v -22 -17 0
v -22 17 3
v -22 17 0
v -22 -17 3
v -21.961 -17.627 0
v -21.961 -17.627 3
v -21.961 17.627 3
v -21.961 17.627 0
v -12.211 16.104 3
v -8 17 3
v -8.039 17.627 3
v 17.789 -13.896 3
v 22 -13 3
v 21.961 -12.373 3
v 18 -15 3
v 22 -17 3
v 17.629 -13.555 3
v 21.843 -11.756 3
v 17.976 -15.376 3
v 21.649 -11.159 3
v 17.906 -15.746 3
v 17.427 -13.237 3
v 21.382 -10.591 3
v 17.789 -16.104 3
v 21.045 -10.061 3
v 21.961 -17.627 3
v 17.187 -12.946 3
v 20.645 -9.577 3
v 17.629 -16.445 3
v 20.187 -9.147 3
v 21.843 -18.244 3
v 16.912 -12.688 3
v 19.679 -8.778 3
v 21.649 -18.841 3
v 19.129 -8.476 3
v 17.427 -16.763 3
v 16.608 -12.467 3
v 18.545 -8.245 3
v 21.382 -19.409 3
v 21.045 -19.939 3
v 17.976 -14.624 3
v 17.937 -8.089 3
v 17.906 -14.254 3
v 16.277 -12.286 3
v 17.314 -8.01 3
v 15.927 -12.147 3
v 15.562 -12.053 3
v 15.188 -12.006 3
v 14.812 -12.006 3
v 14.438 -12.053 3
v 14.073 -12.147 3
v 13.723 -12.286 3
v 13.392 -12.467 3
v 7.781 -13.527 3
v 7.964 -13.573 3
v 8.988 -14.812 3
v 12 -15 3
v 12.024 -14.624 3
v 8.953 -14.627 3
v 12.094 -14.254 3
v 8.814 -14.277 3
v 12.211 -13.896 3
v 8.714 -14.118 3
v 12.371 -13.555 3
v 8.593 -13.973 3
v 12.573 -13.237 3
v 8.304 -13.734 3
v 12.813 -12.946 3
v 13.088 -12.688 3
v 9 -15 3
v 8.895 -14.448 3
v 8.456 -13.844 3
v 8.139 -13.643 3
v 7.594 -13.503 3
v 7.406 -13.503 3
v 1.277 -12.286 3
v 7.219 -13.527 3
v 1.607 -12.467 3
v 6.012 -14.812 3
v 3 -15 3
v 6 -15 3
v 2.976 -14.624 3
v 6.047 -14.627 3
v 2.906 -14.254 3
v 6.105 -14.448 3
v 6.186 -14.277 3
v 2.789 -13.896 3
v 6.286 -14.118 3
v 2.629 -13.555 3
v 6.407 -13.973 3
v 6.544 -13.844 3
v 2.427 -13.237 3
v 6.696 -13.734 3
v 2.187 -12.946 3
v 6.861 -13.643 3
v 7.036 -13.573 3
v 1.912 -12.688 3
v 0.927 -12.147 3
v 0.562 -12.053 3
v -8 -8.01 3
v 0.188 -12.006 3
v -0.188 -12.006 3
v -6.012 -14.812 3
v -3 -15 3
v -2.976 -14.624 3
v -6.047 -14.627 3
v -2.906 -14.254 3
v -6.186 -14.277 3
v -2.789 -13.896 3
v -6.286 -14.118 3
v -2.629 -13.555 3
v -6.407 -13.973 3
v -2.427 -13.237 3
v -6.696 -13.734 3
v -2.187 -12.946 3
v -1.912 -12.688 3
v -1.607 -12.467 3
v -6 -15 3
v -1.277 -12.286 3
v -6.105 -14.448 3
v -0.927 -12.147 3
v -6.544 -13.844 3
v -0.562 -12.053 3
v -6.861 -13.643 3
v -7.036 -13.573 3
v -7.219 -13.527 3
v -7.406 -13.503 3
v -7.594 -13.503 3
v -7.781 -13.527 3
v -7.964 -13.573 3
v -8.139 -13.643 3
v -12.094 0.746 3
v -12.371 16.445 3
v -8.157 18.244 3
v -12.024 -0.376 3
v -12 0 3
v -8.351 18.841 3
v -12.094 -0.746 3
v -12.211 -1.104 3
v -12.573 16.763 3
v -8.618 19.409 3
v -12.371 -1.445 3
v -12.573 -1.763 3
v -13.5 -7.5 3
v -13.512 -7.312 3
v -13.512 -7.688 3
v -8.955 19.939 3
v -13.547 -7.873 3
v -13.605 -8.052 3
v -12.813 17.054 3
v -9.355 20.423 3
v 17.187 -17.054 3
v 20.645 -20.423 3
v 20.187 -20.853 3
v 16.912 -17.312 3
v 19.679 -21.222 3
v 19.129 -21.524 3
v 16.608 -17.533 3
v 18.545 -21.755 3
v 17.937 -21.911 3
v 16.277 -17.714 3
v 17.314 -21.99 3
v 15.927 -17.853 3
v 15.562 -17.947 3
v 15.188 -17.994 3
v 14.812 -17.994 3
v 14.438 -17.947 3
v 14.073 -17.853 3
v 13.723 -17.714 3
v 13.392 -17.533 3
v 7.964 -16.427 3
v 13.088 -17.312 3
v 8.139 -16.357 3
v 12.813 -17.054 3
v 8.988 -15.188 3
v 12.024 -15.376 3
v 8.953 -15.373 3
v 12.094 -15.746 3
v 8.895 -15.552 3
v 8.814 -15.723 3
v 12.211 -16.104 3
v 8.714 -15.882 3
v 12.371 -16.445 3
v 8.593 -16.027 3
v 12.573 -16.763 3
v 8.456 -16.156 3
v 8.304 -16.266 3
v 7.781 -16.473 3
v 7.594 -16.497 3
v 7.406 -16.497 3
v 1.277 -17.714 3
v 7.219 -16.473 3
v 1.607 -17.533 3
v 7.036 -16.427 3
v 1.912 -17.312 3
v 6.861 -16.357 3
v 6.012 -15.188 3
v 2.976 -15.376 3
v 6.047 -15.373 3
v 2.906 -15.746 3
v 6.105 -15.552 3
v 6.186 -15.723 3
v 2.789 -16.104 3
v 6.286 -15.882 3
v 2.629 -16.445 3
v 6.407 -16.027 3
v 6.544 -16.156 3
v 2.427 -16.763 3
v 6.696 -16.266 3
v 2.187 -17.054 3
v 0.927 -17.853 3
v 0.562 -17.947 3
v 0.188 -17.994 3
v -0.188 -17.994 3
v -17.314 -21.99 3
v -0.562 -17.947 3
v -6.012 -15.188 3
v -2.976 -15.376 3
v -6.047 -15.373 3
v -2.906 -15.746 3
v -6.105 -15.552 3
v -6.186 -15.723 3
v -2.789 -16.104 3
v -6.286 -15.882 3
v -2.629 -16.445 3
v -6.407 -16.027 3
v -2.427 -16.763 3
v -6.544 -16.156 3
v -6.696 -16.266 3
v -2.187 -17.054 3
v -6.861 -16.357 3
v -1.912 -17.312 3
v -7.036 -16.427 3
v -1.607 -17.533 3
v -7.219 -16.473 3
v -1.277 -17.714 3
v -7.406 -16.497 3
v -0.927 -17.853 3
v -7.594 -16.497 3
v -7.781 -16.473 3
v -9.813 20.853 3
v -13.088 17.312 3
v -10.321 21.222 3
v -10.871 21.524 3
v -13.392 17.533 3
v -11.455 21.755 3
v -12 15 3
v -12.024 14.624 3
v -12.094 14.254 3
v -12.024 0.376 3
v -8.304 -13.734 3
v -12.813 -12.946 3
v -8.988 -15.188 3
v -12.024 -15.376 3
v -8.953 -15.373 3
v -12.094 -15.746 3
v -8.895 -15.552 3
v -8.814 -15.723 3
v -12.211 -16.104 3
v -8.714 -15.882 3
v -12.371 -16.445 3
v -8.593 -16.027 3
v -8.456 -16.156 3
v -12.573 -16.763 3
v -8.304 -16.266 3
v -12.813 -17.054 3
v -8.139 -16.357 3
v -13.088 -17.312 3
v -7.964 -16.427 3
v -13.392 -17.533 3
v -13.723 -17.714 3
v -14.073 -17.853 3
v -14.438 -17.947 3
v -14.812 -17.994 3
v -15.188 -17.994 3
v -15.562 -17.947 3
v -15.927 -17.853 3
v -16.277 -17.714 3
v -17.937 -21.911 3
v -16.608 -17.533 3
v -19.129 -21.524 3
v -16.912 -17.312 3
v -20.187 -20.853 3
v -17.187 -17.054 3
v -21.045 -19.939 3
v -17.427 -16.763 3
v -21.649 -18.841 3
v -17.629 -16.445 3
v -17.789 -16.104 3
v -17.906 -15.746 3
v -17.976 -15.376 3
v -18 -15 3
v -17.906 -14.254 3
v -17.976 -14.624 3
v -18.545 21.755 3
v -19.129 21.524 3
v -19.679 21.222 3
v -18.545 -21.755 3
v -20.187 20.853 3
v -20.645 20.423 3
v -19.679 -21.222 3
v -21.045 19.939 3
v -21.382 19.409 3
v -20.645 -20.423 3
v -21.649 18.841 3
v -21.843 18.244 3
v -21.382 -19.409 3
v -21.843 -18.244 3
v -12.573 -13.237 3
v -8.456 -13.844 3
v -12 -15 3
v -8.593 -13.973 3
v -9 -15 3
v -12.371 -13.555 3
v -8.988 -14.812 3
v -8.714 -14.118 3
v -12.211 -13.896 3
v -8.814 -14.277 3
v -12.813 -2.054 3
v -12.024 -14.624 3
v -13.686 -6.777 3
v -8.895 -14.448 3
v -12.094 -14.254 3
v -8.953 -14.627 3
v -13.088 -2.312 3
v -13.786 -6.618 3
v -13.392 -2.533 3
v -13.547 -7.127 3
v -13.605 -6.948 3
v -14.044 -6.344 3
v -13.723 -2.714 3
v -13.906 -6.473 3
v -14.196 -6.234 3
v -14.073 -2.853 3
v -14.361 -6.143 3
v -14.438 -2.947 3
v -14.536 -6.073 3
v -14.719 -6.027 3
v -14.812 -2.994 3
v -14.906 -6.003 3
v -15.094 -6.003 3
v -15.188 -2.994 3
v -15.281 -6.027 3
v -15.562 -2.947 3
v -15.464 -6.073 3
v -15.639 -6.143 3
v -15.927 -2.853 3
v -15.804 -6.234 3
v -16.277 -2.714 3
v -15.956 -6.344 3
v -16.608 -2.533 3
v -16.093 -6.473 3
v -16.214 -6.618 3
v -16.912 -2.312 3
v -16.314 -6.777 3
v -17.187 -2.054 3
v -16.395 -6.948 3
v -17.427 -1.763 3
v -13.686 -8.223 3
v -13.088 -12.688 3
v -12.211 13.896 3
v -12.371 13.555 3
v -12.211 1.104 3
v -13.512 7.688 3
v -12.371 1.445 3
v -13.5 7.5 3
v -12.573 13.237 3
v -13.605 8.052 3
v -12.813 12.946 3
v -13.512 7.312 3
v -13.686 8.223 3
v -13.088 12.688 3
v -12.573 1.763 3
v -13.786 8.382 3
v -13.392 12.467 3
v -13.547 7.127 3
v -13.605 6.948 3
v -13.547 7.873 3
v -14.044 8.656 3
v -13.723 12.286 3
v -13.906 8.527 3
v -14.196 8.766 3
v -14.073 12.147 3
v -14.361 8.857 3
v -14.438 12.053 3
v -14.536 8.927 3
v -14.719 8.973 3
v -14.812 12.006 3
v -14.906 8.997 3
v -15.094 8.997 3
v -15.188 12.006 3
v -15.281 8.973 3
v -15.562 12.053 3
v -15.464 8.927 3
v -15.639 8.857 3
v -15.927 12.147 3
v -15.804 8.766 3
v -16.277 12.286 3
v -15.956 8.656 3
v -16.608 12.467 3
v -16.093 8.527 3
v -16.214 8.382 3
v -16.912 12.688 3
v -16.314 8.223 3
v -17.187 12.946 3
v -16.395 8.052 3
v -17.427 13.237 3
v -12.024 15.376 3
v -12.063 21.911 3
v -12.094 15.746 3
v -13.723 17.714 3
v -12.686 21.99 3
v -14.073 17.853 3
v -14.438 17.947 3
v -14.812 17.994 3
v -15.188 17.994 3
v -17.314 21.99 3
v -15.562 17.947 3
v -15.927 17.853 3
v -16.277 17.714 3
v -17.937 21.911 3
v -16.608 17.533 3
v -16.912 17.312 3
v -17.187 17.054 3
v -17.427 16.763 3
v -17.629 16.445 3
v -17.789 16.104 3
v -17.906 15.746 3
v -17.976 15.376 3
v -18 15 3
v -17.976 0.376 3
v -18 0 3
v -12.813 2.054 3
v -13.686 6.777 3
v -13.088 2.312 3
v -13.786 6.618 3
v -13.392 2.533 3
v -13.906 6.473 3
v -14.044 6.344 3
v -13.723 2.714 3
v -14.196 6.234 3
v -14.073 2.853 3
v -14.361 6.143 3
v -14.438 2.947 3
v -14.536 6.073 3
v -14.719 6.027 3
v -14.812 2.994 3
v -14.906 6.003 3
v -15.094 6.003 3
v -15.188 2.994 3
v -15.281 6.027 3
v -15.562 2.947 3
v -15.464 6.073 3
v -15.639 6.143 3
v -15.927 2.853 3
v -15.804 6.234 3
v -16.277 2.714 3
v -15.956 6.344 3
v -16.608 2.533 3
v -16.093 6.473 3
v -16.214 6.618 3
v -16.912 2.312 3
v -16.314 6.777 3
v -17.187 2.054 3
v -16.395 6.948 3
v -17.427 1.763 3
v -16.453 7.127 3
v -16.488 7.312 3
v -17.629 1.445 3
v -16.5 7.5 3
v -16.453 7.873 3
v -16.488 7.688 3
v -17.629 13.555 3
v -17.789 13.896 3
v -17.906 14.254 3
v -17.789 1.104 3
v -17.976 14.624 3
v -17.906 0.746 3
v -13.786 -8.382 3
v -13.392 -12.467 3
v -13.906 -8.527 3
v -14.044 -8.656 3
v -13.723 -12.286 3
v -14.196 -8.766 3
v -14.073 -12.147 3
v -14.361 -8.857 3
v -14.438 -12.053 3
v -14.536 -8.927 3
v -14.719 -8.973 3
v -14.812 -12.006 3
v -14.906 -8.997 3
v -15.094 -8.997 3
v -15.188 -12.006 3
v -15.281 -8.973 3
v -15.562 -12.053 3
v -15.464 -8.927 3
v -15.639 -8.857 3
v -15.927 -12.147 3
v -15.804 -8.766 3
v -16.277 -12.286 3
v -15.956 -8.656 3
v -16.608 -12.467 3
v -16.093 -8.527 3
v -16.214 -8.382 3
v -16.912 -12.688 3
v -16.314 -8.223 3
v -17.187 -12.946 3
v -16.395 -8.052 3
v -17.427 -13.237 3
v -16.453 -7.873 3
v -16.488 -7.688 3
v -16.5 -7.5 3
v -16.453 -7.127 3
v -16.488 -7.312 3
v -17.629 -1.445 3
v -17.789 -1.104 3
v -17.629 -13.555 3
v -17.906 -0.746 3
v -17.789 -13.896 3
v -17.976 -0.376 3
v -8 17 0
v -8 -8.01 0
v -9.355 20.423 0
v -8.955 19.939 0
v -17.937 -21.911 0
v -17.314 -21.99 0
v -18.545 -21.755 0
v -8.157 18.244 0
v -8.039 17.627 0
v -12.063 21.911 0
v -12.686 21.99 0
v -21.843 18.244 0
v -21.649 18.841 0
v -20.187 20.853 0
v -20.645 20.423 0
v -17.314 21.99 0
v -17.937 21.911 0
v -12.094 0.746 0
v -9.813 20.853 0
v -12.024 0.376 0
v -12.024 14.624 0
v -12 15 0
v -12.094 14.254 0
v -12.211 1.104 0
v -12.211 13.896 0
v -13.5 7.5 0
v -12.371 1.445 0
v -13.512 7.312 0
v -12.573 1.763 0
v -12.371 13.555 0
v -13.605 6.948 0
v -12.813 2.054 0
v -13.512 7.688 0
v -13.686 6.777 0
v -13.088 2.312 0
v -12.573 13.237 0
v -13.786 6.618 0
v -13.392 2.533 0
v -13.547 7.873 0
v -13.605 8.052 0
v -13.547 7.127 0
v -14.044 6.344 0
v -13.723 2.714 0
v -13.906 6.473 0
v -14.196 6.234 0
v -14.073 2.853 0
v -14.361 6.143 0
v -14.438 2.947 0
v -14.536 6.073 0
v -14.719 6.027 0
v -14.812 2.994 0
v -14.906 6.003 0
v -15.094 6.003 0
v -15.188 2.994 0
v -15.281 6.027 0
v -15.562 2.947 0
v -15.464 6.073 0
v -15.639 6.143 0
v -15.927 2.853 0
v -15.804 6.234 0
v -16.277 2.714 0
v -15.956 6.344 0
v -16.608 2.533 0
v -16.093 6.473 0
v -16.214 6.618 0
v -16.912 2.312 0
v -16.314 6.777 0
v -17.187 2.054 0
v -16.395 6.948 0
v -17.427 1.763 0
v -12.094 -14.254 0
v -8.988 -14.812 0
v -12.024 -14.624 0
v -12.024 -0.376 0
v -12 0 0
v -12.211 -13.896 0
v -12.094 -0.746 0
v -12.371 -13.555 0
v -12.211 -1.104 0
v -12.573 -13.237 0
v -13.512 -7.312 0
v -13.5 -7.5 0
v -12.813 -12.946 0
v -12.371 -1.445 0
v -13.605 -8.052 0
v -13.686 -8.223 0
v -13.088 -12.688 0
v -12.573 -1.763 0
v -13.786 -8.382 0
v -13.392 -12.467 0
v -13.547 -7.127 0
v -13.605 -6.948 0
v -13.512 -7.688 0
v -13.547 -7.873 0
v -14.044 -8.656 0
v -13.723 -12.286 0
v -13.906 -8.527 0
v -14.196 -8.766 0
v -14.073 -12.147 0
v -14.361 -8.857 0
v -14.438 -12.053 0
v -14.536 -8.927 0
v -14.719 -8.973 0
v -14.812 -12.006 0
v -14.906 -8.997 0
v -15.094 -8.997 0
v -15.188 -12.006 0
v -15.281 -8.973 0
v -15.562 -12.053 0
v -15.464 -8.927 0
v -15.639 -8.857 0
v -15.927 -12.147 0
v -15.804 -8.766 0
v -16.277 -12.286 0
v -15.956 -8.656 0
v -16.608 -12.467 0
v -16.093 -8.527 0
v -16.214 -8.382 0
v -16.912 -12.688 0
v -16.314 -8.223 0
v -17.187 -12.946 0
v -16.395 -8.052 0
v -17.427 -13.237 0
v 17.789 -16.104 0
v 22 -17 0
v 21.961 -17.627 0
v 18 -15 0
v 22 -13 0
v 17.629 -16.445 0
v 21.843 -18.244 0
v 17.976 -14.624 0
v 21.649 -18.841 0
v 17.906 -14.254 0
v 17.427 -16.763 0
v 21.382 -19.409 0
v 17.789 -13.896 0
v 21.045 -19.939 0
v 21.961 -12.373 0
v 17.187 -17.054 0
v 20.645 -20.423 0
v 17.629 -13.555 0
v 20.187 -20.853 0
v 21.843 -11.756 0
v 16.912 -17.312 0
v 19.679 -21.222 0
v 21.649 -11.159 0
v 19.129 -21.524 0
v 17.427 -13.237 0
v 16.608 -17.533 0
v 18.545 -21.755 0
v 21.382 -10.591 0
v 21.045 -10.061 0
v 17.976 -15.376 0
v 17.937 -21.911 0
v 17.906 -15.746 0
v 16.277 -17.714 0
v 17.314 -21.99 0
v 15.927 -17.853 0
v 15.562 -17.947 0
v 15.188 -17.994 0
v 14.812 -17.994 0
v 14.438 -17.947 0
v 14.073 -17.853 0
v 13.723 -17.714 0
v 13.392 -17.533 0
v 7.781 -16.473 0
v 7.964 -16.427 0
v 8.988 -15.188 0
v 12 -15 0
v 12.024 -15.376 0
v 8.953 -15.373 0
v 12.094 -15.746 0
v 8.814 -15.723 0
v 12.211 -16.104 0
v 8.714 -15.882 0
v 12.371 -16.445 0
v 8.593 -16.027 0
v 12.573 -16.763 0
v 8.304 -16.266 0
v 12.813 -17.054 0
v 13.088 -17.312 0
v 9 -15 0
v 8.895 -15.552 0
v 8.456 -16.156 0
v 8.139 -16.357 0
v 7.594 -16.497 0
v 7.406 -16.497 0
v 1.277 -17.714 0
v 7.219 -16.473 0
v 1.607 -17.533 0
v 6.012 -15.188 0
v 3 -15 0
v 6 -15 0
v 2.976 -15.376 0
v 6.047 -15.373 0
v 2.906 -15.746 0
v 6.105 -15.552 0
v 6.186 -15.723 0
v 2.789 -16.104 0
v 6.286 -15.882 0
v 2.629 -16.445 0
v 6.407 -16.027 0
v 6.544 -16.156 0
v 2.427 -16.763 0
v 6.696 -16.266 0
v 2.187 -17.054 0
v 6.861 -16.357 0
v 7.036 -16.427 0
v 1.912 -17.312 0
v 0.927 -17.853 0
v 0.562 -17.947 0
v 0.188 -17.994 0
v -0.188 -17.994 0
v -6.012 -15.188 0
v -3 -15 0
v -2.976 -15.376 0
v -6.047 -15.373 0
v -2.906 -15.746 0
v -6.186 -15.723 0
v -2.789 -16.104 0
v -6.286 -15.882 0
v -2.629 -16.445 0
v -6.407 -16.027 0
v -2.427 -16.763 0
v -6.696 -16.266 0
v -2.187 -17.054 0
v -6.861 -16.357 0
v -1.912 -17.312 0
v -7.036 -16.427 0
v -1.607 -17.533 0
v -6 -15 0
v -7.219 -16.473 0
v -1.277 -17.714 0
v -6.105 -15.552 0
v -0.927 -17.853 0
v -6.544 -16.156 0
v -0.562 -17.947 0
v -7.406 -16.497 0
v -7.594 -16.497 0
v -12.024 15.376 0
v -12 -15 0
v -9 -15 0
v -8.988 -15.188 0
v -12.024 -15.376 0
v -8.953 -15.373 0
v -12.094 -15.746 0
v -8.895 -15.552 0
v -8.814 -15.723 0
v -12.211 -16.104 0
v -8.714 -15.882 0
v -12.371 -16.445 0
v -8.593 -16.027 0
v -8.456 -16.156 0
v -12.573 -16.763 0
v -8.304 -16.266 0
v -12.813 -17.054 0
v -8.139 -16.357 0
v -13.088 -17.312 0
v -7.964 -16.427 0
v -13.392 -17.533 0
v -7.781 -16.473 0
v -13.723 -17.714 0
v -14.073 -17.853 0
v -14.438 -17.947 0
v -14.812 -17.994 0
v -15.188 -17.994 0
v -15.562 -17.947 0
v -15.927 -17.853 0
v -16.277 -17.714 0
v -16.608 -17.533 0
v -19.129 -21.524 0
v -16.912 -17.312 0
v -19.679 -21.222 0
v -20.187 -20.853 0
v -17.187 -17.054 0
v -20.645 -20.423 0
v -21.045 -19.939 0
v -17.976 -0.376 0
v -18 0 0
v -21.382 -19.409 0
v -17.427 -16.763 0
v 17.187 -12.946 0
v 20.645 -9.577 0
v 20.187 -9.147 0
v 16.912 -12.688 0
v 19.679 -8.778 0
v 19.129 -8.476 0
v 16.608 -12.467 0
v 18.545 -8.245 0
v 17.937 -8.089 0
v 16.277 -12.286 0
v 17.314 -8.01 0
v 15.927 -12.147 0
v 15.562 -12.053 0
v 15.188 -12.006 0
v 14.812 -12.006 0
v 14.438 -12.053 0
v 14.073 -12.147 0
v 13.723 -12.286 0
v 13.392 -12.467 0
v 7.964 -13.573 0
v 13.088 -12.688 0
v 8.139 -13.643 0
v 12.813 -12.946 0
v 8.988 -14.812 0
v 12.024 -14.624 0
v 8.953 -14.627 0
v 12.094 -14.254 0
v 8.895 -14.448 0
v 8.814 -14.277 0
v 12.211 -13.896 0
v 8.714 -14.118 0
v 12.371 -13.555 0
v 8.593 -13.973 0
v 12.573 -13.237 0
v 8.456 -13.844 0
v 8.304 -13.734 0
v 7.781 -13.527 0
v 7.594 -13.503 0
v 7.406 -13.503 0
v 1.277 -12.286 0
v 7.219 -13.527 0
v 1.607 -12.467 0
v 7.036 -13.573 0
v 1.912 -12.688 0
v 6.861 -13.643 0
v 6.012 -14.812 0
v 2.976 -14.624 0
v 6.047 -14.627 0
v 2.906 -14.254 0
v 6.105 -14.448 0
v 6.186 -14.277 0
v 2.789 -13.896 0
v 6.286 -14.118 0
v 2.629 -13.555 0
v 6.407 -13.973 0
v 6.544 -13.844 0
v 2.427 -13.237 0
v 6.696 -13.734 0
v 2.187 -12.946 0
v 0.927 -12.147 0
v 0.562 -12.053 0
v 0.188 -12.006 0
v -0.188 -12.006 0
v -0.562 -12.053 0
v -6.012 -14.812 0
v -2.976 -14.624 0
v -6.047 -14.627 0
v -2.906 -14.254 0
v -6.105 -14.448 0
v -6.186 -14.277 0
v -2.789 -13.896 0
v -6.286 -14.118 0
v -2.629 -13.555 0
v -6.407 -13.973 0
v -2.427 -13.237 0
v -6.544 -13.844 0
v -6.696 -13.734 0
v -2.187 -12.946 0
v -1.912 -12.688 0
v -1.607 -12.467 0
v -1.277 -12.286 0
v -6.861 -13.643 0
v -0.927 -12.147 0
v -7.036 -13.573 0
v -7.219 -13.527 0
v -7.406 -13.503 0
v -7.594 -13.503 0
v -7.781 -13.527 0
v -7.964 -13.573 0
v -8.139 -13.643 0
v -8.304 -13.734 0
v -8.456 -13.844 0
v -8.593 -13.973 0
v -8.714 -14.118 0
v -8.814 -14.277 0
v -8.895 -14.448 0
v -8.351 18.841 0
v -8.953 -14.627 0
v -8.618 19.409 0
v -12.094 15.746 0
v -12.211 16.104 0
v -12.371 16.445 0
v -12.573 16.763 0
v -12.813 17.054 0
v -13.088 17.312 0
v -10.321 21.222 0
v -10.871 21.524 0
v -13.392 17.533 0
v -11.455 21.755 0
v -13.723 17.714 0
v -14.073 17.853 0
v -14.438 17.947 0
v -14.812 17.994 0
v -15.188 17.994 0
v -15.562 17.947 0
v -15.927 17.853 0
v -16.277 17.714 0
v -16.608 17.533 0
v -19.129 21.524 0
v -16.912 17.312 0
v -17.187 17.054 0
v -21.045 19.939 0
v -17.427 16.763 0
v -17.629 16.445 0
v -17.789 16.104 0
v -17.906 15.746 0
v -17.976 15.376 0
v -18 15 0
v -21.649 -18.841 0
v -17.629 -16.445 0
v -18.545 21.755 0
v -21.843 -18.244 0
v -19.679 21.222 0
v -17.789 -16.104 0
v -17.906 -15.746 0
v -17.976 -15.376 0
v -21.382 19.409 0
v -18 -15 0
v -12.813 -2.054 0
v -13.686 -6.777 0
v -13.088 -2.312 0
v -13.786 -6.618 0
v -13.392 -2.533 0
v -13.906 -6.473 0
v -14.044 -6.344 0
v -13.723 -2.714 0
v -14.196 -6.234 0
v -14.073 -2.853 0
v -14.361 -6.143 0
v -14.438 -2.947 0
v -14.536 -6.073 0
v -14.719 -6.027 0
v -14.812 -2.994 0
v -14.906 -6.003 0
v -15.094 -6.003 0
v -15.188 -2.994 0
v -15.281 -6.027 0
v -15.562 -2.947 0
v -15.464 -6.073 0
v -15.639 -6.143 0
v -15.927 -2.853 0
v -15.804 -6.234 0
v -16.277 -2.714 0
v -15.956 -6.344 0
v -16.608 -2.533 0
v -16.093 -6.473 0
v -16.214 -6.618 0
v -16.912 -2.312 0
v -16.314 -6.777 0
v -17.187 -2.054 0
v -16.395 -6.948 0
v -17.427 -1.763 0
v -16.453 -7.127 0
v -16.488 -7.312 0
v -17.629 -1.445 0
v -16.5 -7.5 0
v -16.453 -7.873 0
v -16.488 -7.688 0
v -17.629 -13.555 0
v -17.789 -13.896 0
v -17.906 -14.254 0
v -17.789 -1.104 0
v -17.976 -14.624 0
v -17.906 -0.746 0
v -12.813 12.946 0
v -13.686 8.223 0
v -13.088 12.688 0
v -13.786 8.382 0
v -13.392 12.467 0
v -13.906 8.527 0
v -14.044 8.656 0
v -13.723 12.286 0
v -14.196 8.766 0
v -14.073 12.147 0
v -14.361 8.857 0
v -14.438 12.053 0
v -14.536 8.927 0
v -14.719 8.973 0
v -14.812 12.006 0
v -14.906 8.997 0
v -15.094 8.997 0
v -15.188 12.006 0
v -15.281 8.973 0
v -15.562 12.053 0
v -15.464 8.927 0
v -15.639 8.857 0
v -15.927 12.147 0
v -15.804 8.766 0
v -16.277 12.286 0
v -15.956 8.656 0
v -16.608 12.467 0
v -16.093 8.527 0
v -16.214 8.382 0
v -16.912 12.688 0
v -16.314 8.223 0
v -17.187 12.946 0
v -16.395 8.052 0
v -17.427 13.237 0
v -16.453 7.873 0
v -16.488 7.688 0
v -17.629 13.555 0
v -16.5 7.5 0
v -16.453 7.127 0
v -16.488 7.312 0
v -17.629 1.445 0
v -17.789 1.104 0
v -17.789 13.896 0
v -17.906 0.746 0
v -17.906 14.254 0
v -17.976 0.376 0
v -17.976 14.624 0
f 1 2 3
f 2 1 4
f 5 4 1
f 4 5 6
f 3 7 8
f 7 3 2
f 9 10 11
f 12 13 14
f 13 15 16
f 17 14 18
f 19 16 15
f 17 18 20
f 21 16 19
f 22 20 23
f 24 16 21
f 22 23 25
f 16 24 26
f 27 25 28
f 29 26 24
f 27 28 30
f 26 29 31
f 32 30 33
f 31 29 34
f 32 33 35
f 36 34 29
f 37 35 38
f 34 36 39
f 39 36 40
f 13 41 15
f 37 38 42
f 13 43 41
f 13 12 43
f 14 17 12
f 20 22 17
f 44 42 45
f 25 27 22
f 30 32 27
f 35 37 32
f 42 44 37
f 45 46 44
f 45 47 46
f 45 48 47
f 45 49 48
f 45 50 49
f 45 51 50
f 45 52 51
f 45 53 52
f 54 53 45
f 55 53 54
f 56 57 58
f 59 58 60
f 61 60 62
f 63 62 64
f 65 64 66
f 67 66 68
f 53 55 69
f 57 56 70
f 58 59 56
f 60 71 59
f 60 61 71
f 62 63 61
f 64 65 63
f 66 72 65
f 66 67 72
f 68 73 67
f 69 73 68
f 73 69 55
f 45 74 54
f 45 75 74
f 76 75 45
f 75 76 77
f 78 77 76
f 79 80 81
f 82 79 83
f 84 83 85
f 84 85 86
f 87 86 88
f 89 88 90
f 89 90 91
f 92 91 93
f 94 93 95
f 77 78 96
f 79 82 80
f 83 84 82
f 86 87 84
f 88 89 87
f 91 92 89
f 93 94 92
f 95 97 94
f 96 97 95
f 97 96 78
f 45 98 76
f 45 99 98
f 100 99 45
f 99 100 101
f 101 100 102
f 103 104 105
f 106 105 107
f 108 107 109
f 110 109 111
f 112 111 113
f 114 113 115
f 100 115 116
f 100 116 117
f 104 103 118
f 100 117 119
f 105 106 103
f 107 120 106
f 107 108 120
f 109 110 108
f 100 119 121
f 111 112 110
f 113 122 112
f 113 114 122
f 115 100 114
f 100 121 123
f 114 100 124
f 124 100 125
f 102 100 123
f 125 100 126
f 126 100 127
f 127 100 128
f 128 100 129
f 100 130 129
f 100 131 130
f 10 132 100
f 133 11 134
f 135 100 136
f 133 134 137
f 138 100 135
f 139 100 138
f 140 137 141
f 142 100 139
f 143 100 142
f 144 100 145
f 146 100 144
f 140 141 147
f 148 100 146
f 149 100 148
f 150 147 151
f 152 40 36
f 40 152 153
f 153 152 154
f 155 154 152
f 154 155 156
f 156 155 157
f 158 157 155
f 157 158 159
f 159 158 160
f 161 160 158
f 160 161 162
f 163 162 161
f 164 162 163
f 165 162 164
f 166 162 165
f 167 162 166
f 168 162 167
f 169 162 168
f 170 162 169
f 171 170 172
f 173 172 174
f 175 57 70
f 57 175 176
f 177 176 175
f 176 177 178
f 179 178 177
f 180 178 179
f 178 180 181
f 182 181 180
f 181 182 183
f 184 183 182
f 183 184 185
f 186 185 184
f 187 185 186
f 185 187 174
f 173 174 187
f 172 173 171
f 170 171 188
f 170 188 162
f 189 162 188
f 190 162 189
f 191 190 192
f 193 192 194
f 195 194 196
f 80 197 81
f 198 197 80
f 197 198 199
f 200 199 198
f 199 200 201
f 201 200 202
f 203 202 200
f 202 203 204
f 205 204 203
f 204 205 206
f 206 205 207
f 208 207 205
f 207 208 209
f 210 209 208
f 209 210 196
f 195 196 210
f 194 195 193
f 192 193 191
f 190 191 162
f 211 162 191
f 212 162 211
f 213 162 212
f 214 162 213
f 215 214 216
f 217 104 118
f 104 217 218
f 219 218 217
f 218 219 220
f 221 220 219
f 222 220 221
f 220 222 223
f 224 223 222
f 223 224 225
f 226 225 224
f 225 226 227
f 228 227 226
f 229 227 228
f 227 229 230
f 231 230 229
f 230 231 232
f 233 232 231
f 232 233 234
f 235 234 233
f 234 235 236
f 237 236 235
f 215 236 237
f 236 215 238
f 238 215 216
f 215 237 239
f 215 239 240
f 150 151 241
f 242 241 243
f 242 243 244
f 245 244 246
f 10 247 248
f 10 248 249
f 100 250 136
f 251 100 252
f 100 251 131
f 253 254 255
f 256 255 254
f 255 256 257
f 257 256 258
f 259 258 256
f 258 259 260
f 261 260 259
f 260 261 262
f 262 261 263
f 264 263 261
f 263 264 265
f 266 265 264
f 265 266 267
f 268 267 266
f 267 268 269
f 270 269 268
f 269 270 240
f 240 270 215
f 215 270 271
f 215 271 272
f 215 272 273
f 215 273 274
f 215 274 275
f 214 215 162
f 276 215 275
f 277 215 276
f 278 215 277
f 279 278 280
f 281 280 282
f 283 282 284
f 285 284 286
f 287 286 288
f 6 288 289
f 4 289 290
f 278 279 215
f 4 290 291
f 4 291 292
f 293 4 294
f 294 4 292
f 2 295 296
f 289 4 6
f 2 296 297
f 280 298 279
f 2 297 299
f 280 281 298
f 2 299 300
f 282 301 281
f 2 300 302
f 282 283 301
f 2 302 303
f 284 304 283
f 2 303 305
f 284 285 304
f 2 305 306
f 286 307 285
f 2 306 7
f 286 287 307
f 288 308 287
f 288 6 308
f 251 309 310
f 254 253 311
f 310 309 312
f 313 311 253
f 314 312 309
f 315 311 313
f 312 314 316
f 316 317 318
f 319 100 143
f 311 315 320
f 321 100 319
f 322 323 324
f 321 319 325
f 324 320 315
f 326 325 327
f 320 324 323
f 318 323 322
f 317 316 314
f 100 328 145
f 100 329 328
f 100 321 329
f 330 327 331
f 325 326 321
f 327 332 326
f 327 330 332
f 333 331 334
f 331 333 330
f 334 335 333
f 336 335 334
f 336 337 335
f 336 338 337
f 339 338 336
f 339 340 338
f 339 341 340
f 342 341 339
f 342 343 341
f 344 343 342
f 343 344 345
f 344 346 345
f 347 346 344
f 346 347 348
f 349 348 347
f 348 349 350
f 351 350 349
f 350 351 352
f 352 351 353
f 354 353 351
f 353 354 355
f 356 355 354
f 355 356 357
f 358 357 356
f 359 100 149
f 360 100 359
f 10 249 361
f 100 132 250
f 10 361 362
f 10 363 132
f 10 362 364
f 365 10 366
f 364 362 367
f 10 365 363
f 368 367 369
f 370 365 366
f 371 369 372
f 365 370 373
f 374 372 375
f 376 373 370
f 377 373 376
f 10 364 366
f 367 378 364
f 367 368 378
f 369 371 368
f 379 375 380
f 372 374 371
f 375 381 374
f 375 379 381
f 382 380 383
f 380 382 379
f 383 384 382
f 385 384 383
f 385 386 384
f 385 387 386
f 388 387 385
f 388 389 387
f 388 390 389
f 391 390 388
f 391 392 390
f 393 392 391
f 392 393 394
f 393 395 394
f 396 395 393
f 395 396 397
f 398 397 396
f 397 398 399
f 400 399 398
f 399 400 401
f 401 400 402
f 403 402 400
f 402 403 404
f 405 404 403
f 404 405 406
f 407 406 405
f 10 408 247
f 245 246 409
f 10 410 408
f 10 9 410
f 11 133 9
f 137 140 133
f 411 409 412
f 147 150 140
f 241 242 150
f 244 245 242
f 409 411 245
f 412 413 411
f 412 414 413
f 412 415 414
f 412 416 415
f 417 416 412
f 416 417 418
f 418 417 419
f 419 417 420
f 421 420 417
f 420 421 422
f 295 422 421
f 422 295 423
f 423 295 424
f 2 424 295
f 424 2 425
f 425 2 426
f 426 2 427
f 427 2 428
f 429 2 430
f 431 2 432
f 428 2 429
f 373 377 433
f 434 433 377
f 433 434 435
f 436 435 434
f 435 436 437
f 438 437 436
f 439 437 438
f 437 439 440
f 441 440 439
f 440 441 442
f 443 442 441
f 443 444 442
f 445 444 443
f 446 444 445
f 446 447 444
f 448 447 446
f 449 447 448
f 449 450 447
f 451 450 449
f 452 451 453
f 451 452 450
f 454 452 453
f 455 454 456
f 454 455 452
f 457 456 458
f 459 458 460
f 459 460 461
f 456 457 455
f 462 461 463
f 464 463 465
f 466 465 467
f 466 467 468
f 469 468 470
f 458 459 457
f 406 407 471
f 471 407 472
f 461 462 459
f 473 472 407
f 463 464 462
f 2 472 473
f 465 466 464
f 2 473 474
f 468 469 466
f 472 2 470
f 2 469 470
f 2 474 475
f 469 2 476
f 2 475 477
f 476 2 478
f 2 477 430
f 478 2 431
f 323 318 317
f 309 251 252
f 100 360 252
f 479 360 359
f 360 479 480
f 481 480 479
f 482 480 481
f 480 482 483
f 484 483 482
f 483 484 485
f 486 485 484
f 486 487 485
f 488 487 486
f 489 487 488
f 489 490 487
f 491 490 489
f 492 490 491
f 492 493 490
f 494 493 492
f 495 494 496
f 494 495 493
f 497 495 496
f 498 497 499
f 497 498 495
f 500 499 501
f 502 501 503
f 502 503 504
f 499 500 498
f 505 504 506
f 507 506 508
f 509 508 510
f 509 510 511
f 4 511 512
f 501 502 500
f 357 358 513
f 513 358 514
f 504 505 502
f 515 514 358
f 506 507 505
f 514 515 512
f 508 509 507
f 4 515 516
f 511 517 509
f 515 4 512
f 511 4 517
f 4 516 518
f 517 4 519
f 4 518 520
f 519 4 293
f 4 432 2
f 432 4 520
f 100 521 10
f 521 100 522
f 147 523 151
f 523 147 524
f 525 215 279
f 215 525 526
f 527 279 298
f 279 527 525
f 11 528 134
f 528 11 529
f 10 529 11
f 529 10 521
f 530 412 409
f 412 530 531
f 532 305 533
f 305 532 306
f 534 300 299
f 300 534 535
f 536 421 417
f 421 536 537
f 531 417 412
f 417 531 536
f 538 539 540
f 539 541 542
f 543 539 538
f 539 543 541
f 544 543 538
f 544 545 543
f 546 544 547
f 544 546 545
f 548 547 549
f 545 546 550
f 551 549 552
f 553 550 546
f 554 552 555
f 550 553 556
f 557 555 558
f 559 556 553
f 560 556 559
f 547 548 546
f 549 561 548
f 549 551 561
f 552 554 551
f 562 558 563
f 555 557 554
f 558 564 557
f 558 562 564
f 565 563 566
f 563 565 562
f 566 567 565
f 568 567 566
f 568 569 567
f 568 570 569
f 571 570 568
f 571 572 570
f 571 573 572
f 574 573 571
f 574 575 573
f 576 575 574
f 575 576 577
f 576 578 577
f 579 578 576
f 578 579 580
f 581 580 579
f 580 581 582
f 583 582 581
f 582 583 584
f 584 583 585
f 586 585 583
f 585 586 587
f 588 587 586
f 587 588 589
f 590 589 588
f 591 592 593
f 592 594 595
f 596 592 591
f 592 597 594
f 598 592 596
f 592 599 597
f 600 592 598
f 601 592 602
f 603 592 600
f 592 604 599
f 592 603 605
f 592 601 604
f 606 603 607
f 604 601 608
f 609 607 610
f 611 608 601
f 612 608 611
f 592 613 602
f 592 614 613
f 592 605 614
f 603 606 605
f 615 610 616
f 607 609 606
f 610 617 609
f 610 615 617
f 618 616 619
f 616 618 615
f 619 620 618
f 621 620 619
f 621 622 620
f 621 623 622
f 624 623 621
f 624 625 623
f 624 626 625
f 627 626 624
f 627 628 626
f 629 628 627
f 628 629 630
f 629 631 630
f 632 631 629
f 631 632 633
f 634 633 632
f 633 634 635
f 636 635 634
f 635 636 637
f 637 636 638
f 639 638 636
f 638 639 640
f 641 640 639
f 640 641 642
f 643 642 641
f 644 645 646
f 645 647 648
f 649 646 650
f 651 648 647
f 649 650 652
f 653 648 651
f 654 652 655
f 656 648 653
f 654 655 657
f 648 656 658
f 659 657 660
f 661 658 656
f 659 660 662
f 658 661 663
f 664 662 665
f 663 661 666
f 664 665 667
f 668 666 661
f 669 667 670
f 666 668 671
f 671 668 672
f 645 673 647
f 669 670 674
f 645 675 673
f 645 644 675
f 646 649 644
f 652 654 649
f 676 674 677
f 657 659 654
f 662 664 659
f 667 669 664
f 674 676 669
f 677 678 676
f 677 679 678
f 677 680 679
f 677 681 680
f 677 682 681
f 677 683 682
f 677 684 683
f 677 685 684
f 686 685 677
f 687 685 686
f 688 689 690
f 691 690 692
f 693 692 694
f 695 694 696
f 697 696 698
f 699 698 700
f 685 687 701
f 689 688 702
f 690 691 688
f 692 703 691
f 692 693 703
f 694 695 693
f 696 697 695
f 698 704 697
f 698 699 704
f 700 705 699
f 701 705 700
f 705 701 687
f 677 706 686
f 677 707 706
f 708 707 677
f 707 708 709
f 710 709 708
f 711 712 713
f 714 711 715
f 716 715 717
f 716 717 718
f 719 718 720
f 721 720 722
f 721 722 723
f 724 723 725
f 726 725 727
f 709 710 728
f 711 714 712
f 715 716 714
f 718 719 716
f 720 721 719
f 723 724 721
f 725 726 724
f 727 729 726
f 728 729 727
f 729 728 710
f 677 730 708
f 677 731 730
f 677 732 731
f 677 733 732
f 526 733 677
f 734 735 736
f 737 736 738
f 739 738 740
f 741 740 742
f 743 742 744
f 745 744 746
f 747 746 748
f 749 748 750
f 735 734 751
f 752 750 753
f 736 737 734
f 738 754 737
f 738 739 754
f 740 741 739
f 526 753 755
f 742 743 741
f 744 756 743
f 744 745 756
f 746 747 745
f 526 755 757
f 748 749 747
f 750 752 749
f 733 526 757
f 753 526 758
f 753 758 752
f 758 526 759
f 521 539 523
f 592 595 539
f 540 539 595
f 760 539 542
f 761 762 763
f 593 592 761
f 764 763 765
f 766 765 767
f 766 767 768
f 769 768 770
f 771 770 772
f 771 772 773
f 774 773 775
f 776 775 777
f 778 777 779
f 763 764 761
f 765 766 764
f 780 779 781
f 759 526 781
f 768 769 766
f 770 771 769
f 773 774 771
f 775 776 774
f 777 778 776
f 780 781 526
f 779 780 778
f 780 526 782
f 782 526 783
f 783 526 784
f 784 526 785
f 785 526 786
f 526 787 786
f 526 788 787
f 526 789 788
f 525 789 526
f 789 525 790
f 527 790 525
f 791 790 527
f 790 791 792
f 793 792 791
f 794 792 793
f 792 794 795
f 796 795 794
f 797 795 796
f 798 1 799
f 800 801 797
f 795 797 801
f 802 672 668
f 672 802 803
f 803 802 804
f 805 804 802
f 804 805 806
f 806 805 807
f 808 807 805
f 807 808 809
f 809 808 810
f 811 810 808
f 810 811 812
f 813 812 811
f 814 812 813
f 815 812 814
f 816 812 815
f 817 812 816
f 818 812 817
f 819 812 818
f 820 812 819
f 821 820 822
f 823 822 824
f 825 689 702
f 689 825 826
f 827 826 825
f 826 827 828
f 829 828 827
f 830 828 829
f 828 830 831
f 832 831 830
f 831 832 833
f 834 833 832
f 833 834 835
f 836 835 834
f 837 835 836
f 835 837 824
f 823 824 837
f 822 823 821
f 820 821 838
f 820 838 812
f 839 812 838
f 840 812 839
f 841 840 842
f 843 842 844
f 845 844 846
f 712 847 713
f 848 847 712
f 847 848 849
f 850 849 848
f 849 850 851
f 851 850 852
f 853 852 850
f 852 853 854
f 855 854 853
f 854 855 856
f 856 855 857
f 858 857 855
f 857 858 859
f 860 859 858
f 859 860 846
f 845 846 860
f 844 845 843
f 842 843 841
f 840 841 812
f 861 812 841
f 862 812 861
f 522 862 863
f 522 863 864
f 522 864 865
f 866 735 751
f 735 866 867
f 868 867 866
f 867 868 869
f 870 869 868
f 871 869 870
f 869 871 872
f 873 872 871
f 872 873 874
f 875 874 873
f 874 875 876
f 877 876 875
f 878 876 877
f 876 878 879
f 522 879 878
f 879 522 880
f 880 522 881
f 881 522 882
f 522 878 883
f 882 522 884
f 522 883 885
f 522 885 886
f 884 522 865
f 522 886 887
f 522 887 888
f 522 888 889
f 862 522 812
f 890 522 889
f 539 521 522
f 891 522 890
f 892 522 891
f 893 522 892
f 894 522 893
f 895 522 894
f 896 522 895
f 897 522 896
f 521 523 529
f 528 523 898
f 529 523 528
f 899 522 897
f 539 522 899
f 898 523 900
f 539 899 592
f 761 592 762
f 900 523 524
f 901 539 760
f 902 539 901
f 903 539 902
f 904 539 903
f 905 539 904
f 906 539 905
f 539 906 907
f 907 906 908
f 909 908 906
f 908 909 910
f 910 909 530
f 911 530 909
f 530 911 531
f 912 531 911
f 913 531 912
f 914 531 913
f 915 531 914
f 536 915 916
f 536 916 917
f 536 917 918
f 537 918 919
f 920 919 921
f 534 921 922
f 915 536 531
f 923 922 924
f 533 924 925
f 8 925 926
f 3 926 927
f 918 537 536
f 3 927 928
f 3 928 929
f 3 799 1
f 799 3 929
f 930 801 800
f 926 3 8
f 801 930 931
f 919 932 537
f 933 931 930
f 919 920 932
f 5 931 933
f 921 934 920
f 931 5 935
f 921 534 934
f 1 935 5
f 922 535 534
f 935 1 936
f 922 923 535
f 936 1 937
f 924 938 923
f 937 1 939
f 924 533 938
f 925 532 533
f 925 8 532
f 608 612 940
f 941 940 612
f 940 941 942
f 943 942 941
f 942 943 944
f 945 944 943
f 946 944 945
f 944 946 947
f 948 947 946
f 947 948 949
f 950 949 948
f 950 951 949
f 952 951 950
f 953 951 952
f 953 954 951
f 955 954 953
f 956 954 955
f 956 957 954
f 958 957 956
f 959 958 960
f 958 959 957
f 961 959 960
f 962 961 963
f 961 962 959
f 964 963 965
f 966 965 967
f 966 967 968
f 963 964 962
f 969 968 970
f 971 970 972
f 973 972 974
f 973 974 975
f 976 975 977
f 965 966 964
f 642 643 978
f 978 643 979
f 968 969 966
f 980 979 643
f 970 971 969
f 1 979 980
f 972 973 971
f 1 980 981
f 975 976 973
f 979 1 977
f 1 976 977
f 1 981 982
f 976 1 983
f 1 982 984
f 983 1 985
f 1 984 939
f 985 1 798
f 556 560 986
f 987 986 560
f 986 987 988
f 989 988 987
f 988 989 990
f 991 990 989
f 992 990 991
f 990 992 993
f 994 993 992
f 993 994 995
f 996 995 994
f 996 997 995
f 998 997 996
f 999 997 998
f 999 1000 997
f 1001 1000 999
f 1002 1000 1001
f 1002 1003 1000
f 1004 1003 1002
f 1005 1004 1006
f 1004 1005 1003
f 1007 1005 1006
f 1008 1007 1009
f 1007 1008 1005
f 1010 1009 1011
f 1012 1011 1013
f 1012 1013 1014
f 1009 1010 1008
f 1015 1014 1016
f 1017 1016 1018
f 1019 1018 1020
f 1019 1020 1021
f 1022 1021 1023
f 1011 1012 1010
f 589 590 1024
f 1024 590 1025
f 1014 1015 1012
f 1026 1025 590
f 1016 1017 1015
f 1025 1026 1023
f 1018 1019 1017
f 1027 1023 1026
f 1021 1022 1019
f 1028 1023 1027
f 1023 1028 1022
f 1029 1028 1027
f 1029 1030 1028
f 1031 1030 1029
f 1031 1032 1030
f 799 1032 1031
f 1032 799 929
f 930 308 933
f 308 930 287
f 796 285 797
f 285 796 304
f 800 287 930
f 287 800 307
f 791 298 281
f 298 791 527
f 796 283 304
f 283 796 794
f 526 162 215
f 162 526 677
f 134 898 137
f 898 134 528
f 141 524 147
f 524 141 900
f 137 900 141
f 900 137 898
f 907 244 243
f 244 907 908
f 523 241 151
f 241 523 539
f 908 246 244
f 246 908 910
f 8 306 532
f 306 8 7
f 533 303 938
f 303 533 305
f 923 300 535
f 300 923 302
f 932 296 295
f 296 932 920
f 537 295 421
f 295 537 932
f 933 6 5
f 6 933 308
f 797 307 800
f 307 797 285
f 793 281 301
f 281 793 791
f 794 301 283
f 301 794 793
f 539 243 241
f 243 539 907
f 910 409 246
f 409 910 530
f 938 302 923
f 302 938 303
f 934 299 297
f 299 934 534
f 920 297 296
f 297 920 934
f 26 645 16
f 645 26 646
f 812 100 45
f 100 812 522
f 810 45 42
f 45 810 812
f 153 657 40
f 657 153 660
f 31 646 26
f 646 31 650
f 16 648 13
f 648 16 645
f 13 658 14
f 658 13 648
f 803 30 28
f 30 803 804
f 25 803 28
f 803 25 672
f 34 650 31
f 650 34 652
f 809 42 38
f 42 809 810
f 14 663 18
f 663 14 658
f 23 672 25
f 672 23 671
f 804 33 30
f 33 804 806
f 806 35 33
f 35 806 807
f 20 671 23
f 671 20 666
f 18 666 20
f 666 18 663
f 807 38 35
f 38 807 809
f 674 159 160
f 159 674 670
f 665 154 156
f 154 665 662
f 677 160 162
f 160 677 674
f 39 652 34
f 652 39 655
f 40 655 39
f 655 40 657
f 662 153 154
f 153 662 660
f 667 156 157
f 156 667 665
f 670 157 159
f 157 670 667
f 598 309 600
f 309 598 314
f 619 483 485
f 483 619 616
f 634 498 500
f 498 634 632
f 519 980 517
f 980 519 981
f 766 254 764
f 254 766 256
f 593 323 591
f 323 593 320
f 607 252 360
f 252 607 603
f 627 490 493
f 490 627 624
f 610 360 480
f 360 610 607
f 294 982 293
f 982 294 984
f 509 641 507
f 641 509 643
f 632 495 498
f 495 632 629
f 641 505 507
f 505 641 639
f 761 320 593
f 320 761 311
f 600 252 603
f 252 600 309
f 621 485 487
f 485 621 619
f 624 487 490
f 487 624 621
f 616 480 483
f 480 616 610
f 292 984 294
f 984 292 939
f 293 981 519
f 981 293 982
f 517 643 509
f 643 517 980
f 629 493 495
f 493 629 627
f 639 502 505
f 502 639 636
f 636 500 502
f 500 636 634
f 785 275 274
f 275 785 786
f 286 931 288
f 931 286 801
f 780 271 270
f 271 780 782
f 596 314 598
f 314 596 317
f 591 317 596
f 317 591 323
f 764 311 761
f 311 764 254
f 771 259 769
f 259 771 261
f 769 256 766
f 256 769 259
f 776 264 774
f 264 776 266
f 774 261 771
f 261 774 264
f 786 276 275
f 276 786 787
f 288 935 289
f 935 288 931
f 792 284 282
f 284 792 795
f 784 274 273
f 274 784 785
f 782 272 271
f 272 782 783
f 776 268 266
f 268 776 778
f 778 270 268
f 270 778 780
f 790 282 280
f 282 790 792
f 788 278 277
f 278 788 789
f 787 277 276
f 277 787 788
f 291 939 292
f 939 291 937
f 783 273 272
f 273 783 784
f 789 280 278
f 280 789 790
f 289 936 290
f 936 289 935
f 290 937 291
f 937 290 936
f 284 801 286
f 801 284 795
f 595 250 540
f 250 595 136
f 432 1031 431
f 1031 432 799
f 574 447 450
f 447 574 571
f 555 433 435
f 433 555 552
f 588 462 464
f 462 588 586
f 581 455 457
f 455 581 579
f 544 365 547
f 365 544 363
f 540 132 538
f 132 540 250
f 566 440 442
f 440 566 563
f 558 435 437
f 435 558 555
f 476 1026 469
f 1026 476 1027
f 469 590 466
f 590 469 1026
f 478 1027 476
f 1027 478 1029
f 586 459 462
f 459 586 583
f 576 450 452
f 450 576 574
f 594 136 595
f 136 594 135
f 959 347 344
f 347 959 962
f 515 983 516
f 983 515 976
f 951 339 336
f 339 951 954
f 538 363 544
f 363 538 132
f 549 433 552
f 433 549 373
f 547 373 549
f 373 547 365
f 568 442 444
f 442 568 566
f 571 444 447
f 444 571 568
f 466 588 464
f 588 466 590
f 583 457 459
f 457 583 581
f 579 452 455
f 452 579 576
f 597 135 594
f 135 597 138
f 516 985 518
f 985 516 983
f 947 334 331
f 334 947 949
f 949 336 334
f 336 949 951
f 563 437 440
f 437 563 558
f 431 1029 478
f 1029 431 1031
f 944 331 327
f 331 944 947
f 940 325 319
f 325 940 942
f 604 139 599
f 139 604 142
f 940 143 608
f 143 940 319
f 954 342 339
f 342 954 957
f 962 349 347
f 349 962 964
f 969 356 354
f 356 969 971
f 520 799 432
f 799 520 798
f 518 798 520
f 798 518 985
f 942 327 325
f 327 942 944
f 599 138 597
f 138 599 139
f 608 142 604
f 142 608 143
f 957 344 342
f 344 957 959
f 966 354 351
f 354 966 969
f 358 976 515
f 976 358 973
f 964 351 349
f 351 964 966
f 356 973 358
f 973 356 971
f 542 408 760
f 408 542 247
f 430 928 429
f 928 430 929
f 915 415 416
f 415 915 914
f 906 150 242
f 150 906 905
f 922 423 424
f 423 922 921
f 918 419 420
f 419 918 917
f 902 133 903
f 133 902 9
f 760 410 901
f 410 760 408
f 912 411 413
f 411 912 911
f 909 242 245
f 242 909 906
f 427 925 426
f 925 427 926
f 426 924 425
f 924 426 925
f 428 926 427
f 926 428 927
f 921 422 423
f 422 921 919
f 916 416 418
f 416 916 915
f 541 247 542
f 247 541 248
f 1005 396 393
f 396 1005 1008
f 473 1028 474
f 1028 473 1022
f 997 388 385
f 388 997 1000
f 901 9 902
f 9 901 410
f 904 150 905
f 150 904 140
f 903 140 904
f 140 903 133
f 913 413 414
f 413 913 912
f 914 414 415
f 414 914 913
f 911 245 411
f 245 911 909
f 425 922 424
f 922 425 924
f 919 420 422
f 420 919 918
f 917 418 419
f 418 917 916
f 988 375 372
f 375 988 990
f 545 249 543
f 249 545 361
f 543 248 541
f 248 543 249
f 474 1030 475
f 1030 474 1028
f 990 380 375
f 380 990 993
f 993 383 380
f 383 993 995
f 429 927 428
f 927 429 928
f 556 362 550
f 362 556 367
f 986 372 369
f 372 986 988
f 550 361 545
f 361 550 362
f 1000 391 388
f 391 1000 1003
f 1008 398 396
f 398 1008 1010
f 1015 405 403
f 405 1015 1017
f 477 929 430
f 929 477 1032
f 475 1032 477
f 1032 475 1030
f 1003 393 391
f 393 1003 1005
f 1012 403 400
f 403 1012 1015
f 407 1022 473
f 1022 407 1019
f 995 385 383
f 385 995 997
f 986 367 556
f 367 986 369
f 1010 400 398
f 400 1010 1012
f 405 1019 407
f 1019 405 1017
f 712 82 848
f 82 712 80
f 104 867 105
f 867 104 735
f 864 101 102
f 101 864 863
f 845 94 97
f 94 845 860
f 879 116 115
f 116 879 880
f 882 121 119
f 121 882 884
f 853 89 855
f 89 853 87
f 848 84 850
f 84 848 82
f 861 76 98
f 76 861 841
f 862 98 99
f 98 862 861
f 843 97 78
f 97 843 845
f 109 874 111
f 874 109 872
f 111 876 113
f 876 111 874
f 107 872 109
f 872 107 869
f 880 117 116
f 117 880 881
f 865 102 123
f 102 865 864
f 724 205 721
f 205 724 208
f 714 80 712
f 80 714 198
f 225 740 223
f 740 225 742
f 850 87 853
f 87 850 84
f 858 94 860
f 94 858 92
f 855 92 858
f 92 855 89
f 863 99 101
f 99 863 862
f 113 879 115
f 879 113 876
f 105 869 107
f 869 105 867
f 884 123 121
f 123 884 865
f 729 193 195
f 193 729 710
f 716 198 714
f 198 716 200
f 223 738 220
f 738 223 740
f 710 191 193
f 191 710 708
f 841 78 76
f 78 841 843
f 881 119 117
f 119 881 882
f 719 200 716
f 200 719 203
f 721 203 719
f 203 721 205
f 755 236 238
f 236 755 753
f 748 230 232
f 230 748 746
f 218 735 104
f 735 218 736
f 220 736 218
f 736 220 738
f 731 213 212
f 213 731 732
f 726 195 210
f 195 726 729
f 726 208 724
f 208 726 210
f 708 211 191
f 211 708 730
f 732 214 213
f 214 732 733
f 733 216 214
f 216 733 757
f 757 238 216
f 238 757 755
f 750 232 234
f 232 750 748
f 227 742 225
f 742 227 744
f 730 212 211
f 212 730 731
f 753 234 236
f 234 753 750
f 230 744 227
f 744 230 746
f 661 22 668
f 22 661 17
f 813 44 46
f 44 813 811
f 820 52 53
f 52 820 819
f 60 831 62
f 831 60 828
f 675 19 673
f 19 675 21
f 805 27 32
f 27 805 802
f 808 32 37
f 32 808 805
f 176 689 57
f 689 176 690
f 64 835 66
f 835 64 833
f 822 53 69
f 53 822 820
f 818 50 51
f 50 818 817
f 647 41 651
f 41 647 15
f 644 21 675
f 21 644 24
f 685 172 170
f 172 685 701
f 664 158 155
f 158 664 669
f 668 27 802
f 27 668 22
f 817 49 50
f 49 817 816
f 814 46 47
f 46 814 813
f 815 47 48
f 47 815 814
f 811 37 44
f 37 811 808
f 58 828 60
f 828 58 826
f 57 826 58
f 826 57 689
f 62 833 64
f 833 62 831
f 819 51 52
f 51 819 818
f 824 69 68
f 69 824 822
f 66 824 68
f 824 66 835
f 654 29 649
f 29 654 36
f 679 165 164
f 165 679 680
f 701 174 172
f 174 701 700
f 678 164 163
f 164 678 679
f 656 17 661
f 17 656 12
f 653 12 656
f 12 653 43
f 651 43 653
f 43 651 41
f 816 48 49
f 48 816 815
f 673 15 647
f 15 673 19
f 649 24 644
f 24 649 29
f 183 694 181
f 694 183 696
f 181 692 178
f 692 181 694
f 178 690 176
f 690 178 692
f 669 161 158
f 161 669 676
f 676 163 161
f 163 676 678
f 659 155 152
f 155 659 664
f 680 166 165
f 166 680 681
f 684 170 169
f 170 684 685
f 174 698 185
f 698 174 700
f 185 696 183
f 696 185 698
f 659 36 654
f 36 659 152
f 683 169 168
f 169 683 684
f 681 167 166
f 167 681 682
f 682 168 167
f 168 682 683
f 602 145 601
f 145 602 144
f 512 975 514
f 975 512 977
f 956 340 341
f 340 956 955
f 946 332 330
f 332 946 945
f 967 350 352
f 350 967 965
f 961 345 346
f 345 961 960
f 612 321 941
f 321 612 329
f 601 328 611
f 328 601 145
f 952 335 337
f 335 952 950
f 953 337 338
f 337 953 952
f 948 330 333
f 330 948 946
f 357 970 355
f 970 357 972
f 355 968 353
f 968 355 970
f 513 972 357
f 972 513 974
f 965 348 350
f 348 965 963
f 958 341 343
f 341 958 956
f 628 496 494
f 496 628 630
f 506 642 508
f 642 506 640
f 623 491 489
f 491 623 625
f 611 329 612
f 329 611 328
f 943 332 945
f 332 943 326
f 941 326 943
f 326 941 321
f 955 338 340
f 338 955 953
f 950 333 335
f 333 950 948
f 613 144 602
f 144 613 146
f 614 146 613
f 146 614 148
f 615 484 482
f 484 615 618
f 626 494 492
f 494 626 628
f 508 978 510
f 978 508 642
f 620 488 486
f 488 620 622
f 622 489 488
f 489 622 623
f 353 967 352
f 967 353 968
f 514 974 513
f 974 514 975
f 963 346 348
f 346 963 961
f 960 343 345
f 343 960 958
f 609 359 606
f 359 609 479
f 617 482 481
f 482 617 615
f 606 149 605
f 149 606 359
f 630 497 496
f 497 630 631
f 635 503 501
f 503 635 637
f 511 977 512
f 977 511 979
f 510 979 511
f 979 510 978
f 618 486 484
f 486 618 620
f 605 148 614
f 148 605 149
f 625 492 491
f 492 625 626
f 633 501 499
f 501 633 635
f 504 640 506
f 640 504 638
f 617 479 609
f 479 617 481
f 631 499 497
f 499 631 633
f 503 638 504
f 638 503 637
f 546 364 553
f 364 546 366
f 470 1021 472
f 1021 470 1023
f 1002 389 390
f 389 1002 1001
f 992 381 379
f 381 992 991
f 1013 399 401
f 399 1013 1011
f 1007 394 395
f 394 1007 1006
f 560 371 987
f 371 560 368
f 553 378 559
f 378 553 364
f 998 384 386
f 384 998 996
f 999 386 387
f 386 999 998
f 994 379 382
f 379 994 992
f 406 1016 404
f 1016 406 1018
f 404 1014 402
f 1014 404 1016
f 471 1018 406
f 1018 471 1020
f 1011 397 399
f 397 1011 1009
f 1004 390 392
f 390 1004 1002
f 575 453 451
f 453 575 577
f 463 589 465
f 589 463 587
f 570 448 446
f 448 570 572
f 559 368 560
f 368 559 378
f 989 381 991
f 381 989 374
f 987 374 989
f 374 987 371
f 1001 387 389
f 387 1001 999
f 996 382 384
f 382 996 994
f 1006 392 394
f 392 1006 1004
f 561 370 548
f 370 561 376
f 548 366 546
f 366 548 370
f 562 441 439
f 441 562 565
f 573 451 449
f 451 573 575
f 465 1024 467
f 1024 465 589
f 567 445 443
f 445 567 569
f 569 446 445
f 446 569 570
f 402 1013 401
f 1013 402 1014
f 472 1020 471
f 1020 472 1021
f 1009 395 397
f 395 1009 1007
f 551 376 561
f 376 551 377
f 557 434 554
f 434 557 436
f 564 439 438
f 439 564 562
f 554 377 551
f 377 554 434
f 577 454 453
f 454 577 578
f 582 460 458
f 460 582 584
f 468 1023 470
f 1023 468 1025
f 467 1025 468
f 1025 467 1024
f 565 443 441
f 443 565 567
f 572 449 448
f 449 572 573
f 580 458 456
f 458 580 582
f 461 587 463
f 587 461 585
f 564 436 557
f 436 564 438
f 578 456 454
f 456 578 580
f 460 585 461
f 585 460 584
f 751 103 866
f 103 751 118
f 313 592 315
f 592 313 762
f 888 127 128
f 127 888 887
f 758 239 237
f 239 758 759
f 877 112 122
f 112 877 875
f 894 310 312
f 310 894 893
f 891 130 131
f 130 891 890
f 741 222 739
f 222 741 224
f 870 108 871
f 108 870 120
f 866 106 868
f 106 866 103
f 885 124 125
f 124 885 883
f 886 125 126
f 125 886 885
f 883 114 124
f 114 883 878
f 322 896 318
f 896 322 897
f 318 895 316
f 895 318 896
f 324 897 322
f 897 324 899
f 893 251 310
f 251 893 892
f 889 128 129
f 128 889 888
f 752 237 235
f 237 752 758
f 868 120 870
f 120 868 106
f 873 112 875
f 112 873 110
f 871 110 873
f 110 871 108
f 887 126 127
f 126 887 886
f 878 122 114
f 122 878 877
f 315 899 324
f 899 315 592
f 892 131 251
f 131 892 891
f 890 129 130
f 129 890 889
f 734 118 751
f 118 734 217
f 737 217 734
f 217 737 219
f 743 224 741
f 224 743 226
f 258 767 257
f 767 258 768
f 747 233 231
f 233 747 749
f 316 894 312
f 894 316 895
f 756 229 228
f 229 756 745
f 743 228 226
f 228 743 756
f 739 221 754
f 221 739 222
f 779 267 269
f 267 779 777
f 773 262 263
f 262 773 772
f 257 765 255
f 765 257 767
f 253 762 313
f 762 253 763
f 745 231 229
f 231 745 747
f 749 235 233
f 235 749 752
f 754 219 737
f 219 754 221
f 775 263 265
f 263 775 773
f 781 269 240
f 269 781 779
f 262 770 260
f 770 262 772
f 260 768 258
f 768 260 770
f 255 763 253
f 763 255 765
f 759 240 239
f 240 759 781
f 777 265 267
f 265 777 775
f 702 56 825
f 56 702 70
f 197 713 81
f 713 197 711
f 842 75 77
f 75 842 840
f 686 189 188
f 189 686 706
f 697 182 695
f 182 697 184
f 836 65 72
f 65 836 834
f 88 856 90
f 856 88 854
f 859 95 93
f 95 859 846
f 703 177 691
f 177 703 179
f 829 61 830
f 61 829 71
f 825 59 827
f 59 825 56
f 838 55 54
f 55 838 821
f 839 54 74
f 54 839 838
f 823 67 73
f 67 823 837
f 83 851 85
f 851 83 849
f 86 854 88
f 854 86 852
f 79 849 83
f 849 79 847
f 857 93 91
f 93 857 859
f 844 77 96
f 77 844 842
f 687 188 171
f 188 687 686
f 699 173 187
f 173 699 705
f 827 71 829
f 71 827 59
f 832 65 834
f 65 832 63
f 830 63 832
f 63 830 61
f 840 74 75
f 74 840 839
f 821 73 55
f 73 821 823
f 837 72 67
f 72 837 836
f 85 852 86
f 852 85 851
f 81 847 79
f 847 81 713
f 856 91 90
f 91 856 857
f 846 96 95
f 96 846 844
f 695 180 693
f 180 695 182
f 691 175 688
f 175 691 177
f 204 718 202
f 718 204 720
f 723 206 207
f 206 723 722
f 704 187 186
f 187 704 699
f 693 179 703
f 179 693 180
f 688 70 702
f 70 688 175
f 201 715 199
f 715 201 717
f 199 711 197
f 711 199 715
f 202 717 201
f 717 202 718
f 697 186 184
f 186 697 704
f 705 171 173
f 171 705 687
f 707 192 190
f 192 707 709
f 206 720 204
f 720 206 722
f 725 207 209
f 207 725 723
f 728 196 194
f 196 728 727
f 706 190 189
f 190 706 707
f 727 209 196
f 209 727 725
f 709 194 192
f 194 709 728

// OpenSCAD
$fn = 50;


difference() {
	union() {
		translate(v = [-15.0000000000, 0, 0]) {
			hull() {
				translate(v = [-2.0000000000, 17.0000000000, 0]) {
					cylinder(h = 3, r = 5);
				}
				translate(v = [2.0000000000, 17.0000000000, 0]) {
					cylinder(h = 3, r = 5);
				}
				translate(v = [-2.0000000000, -17.0000000000, 0]) {
					cylinder(h = 3, r = 5);
				}
				translate(v = [2.0000000000, -17.0000000000, 0]) {
					cylinder(h = 3, r = 5);
				}
			}
		}
		translate(v = [0, -15.0000000000, 0]) {
			hull() {
				translate(v = [-17.0000000000, 2.0000000000, 0]) {
					cylinder(h = 3, r = 5);
				}
				translate(v = [17.0000000000, 2.0000000000, 0]) {
					cylinder(h = 3, r = 5);
				}
				translate(v = [-17.0000000000, -2.0000000000, 0]) {
					cylinder(h = 3, r = 5);
				}
				translate(v = [17.0000000000, -2.0000000000, 0]) {
					cylinder(h = 3, r = 5);
				}
			}
		}
	}
	union() {
		#translate(v = [-15.0000000000, -15.0000000000, 0]) {
			cylinder(h = 3, r = 3.0000000000);
		}
		#translate(v = [-15.0000000000, 0.0000000000, 0]) {
			cylinder(h = 3, r = 3.0000000000);
		}
		#translate(v = [-15.0000000000, 15.0000000000, 0]) {
			cylinder(h = 3, r = 3.0000000000);
		}
		#translate(v = [-15.0000000000, -15.0000000000, 0]) {
			cylinder(h = 3, r = 3.0000000000);
		}
		#translate(v = [0.0000000000, -15.0000000000, 0]) {
			cylinder(h = 3, r = 3.0000000000);
		}
		#translate(v = [15.0000000000, -15.0000000000, 0]) {
			cylinder(h = 3, r = 3.0000000000);
		}
		#translate(v = [-15.0000000000, -15.0000000000, 0]) {
			cylinder(h = 3, r = 1.5000000000);
		}
		#translate(v = [-15.0000000000, -7.5000000000, 0]) {
			cylinder(h = 3, r = 1.5000000000);
		}
		#translate(v = [-15.0000000000, 0.0000000000, 0]) {
			cylinder(h = 3, r = 1.5000000000);
		}
		#translate(v = [-15.0000000000, 7.5000000000, 0]) {
			cylinder(h = 3, r = 1.5000000000);
		}
		#translate(v = [-15.0000000000, 15.0000000000, 0]) {
			cylinder(h = 3, r = 1.5000000000);
		}
		#translate(v = [-15.0000000000, -15.0000000000, 0]) {
			cylinder(h = 3, r = 1.5000000000);
		}
		#translate(v = [-7.5000000000, -15.0000000000, 0]) {
			cylinder(h = 3, r = 1.5000000000);
		}
		#translate(v = [0.0000000000, -15.0000000000, 0]) {
			cylinder(h = 3, r = 1.5000000000);
		}
		#translate(v = [7.5000000000, -15.0000000000, 0]) {
			cylinder(h = 3, r = 1.5000000000);
		}
		#translate(v = [15.0000000000, -15.0000000000, 0]) {
			cylinder(h = 3, r = 1.5000000000);
		}
		#translate(v = [-15.0000000000, -15.0000000000, 0]) {
			cylinder(h = 3, r = 1.5000000000);
		}
		#translate(v = [-15.0000000000, -7.5000000000, 0]) {
			cylinder(h = 3, r = 1.5000000000);
		}
		#translate(v = [-15.0000000000, 0.0000000000, 0]) {
			cylinder(h = 3, r = 1.5000000000);
		}
		#translate(v = [-15.0000000000, 7.5000000000, 0]) {
			cylinder(h = 3, r = 1.5000000000);
		}
		#translate(v = [-15.0000000000, 15.0000000000, 0]) {
			cylinder(h = 3, r = 1.5000000000);
		}
		#translate(v = [-15.0000000000, -15.0000000000, 0]) {
			cylinder(h = 3, r = 1.5000000000);
		}
		#translate(v = [-7.5000000000, -15.0000000000, 0]) {
			cylinder(h = 3, r = 1.5000000000);
		}
		#translate(v = [0.0000000000, -15.0000000000, 0]) {
			cylinder(h = 3, r = 1.5000000000);
		}
		#translate(v = [7.5000000000, -15.0000000000, 0]) {
			cylinder(h = 3, r = 1.5000000000);
		}
		#translate(v = [15.0000000000, -15.0000000000, 0]) {
			cylinder(h = 3, r = 1.5000000000);
		}
		#translate(v = [-15.0000000000, -15.0000000000, 0]) {
			cylinder(h = 3, r = 1.5000000000);
		}
		#translate(v = [-15.0000000000, -7.5000000000, 0]) {
			cylinder(h = 3, r = 1.5000000000);
		}
		#translate(v = [-15.0000000000, 0.0000000000, 0]) {
			cylinder(h = 3, r = 1.5000000000);
		}
		#translate(v = [-15.0000000000, 7.5000000000, 0]) {
			cylinder(h = 3, r = 1.5000000000);
		}
		#translate(v = [-15.0000000000, 15.0000000000, 0]) {
			cylinder(h = 3, r = 1.5000000000);
		}
		#translate(v = [-15.0000000000, -15.0000000000, 0]) {
			cylinder(h = 3, r = 1.5000000000);
		}
		#translate(v = [-7.5000000000, -15.0000000000, 0]) {
			cylinder(h = 3, r = 1.5000000000);
		}
		#translate(v = [0.0000000000, -15.0000000000, 0]) {
			cylinder(h = 3, r = 1.5000000000);
		}
		#translate(v = [7.5000000000, -15.0000000000, 0]) {
			cylinder(h = 3, r = 1.5000000000);
		}
		#translate(v = [15.0000000000, -15.0000000000, 0]) {
			cylinder(h = 3, r = 1.5000000000);
		}
	}
}
